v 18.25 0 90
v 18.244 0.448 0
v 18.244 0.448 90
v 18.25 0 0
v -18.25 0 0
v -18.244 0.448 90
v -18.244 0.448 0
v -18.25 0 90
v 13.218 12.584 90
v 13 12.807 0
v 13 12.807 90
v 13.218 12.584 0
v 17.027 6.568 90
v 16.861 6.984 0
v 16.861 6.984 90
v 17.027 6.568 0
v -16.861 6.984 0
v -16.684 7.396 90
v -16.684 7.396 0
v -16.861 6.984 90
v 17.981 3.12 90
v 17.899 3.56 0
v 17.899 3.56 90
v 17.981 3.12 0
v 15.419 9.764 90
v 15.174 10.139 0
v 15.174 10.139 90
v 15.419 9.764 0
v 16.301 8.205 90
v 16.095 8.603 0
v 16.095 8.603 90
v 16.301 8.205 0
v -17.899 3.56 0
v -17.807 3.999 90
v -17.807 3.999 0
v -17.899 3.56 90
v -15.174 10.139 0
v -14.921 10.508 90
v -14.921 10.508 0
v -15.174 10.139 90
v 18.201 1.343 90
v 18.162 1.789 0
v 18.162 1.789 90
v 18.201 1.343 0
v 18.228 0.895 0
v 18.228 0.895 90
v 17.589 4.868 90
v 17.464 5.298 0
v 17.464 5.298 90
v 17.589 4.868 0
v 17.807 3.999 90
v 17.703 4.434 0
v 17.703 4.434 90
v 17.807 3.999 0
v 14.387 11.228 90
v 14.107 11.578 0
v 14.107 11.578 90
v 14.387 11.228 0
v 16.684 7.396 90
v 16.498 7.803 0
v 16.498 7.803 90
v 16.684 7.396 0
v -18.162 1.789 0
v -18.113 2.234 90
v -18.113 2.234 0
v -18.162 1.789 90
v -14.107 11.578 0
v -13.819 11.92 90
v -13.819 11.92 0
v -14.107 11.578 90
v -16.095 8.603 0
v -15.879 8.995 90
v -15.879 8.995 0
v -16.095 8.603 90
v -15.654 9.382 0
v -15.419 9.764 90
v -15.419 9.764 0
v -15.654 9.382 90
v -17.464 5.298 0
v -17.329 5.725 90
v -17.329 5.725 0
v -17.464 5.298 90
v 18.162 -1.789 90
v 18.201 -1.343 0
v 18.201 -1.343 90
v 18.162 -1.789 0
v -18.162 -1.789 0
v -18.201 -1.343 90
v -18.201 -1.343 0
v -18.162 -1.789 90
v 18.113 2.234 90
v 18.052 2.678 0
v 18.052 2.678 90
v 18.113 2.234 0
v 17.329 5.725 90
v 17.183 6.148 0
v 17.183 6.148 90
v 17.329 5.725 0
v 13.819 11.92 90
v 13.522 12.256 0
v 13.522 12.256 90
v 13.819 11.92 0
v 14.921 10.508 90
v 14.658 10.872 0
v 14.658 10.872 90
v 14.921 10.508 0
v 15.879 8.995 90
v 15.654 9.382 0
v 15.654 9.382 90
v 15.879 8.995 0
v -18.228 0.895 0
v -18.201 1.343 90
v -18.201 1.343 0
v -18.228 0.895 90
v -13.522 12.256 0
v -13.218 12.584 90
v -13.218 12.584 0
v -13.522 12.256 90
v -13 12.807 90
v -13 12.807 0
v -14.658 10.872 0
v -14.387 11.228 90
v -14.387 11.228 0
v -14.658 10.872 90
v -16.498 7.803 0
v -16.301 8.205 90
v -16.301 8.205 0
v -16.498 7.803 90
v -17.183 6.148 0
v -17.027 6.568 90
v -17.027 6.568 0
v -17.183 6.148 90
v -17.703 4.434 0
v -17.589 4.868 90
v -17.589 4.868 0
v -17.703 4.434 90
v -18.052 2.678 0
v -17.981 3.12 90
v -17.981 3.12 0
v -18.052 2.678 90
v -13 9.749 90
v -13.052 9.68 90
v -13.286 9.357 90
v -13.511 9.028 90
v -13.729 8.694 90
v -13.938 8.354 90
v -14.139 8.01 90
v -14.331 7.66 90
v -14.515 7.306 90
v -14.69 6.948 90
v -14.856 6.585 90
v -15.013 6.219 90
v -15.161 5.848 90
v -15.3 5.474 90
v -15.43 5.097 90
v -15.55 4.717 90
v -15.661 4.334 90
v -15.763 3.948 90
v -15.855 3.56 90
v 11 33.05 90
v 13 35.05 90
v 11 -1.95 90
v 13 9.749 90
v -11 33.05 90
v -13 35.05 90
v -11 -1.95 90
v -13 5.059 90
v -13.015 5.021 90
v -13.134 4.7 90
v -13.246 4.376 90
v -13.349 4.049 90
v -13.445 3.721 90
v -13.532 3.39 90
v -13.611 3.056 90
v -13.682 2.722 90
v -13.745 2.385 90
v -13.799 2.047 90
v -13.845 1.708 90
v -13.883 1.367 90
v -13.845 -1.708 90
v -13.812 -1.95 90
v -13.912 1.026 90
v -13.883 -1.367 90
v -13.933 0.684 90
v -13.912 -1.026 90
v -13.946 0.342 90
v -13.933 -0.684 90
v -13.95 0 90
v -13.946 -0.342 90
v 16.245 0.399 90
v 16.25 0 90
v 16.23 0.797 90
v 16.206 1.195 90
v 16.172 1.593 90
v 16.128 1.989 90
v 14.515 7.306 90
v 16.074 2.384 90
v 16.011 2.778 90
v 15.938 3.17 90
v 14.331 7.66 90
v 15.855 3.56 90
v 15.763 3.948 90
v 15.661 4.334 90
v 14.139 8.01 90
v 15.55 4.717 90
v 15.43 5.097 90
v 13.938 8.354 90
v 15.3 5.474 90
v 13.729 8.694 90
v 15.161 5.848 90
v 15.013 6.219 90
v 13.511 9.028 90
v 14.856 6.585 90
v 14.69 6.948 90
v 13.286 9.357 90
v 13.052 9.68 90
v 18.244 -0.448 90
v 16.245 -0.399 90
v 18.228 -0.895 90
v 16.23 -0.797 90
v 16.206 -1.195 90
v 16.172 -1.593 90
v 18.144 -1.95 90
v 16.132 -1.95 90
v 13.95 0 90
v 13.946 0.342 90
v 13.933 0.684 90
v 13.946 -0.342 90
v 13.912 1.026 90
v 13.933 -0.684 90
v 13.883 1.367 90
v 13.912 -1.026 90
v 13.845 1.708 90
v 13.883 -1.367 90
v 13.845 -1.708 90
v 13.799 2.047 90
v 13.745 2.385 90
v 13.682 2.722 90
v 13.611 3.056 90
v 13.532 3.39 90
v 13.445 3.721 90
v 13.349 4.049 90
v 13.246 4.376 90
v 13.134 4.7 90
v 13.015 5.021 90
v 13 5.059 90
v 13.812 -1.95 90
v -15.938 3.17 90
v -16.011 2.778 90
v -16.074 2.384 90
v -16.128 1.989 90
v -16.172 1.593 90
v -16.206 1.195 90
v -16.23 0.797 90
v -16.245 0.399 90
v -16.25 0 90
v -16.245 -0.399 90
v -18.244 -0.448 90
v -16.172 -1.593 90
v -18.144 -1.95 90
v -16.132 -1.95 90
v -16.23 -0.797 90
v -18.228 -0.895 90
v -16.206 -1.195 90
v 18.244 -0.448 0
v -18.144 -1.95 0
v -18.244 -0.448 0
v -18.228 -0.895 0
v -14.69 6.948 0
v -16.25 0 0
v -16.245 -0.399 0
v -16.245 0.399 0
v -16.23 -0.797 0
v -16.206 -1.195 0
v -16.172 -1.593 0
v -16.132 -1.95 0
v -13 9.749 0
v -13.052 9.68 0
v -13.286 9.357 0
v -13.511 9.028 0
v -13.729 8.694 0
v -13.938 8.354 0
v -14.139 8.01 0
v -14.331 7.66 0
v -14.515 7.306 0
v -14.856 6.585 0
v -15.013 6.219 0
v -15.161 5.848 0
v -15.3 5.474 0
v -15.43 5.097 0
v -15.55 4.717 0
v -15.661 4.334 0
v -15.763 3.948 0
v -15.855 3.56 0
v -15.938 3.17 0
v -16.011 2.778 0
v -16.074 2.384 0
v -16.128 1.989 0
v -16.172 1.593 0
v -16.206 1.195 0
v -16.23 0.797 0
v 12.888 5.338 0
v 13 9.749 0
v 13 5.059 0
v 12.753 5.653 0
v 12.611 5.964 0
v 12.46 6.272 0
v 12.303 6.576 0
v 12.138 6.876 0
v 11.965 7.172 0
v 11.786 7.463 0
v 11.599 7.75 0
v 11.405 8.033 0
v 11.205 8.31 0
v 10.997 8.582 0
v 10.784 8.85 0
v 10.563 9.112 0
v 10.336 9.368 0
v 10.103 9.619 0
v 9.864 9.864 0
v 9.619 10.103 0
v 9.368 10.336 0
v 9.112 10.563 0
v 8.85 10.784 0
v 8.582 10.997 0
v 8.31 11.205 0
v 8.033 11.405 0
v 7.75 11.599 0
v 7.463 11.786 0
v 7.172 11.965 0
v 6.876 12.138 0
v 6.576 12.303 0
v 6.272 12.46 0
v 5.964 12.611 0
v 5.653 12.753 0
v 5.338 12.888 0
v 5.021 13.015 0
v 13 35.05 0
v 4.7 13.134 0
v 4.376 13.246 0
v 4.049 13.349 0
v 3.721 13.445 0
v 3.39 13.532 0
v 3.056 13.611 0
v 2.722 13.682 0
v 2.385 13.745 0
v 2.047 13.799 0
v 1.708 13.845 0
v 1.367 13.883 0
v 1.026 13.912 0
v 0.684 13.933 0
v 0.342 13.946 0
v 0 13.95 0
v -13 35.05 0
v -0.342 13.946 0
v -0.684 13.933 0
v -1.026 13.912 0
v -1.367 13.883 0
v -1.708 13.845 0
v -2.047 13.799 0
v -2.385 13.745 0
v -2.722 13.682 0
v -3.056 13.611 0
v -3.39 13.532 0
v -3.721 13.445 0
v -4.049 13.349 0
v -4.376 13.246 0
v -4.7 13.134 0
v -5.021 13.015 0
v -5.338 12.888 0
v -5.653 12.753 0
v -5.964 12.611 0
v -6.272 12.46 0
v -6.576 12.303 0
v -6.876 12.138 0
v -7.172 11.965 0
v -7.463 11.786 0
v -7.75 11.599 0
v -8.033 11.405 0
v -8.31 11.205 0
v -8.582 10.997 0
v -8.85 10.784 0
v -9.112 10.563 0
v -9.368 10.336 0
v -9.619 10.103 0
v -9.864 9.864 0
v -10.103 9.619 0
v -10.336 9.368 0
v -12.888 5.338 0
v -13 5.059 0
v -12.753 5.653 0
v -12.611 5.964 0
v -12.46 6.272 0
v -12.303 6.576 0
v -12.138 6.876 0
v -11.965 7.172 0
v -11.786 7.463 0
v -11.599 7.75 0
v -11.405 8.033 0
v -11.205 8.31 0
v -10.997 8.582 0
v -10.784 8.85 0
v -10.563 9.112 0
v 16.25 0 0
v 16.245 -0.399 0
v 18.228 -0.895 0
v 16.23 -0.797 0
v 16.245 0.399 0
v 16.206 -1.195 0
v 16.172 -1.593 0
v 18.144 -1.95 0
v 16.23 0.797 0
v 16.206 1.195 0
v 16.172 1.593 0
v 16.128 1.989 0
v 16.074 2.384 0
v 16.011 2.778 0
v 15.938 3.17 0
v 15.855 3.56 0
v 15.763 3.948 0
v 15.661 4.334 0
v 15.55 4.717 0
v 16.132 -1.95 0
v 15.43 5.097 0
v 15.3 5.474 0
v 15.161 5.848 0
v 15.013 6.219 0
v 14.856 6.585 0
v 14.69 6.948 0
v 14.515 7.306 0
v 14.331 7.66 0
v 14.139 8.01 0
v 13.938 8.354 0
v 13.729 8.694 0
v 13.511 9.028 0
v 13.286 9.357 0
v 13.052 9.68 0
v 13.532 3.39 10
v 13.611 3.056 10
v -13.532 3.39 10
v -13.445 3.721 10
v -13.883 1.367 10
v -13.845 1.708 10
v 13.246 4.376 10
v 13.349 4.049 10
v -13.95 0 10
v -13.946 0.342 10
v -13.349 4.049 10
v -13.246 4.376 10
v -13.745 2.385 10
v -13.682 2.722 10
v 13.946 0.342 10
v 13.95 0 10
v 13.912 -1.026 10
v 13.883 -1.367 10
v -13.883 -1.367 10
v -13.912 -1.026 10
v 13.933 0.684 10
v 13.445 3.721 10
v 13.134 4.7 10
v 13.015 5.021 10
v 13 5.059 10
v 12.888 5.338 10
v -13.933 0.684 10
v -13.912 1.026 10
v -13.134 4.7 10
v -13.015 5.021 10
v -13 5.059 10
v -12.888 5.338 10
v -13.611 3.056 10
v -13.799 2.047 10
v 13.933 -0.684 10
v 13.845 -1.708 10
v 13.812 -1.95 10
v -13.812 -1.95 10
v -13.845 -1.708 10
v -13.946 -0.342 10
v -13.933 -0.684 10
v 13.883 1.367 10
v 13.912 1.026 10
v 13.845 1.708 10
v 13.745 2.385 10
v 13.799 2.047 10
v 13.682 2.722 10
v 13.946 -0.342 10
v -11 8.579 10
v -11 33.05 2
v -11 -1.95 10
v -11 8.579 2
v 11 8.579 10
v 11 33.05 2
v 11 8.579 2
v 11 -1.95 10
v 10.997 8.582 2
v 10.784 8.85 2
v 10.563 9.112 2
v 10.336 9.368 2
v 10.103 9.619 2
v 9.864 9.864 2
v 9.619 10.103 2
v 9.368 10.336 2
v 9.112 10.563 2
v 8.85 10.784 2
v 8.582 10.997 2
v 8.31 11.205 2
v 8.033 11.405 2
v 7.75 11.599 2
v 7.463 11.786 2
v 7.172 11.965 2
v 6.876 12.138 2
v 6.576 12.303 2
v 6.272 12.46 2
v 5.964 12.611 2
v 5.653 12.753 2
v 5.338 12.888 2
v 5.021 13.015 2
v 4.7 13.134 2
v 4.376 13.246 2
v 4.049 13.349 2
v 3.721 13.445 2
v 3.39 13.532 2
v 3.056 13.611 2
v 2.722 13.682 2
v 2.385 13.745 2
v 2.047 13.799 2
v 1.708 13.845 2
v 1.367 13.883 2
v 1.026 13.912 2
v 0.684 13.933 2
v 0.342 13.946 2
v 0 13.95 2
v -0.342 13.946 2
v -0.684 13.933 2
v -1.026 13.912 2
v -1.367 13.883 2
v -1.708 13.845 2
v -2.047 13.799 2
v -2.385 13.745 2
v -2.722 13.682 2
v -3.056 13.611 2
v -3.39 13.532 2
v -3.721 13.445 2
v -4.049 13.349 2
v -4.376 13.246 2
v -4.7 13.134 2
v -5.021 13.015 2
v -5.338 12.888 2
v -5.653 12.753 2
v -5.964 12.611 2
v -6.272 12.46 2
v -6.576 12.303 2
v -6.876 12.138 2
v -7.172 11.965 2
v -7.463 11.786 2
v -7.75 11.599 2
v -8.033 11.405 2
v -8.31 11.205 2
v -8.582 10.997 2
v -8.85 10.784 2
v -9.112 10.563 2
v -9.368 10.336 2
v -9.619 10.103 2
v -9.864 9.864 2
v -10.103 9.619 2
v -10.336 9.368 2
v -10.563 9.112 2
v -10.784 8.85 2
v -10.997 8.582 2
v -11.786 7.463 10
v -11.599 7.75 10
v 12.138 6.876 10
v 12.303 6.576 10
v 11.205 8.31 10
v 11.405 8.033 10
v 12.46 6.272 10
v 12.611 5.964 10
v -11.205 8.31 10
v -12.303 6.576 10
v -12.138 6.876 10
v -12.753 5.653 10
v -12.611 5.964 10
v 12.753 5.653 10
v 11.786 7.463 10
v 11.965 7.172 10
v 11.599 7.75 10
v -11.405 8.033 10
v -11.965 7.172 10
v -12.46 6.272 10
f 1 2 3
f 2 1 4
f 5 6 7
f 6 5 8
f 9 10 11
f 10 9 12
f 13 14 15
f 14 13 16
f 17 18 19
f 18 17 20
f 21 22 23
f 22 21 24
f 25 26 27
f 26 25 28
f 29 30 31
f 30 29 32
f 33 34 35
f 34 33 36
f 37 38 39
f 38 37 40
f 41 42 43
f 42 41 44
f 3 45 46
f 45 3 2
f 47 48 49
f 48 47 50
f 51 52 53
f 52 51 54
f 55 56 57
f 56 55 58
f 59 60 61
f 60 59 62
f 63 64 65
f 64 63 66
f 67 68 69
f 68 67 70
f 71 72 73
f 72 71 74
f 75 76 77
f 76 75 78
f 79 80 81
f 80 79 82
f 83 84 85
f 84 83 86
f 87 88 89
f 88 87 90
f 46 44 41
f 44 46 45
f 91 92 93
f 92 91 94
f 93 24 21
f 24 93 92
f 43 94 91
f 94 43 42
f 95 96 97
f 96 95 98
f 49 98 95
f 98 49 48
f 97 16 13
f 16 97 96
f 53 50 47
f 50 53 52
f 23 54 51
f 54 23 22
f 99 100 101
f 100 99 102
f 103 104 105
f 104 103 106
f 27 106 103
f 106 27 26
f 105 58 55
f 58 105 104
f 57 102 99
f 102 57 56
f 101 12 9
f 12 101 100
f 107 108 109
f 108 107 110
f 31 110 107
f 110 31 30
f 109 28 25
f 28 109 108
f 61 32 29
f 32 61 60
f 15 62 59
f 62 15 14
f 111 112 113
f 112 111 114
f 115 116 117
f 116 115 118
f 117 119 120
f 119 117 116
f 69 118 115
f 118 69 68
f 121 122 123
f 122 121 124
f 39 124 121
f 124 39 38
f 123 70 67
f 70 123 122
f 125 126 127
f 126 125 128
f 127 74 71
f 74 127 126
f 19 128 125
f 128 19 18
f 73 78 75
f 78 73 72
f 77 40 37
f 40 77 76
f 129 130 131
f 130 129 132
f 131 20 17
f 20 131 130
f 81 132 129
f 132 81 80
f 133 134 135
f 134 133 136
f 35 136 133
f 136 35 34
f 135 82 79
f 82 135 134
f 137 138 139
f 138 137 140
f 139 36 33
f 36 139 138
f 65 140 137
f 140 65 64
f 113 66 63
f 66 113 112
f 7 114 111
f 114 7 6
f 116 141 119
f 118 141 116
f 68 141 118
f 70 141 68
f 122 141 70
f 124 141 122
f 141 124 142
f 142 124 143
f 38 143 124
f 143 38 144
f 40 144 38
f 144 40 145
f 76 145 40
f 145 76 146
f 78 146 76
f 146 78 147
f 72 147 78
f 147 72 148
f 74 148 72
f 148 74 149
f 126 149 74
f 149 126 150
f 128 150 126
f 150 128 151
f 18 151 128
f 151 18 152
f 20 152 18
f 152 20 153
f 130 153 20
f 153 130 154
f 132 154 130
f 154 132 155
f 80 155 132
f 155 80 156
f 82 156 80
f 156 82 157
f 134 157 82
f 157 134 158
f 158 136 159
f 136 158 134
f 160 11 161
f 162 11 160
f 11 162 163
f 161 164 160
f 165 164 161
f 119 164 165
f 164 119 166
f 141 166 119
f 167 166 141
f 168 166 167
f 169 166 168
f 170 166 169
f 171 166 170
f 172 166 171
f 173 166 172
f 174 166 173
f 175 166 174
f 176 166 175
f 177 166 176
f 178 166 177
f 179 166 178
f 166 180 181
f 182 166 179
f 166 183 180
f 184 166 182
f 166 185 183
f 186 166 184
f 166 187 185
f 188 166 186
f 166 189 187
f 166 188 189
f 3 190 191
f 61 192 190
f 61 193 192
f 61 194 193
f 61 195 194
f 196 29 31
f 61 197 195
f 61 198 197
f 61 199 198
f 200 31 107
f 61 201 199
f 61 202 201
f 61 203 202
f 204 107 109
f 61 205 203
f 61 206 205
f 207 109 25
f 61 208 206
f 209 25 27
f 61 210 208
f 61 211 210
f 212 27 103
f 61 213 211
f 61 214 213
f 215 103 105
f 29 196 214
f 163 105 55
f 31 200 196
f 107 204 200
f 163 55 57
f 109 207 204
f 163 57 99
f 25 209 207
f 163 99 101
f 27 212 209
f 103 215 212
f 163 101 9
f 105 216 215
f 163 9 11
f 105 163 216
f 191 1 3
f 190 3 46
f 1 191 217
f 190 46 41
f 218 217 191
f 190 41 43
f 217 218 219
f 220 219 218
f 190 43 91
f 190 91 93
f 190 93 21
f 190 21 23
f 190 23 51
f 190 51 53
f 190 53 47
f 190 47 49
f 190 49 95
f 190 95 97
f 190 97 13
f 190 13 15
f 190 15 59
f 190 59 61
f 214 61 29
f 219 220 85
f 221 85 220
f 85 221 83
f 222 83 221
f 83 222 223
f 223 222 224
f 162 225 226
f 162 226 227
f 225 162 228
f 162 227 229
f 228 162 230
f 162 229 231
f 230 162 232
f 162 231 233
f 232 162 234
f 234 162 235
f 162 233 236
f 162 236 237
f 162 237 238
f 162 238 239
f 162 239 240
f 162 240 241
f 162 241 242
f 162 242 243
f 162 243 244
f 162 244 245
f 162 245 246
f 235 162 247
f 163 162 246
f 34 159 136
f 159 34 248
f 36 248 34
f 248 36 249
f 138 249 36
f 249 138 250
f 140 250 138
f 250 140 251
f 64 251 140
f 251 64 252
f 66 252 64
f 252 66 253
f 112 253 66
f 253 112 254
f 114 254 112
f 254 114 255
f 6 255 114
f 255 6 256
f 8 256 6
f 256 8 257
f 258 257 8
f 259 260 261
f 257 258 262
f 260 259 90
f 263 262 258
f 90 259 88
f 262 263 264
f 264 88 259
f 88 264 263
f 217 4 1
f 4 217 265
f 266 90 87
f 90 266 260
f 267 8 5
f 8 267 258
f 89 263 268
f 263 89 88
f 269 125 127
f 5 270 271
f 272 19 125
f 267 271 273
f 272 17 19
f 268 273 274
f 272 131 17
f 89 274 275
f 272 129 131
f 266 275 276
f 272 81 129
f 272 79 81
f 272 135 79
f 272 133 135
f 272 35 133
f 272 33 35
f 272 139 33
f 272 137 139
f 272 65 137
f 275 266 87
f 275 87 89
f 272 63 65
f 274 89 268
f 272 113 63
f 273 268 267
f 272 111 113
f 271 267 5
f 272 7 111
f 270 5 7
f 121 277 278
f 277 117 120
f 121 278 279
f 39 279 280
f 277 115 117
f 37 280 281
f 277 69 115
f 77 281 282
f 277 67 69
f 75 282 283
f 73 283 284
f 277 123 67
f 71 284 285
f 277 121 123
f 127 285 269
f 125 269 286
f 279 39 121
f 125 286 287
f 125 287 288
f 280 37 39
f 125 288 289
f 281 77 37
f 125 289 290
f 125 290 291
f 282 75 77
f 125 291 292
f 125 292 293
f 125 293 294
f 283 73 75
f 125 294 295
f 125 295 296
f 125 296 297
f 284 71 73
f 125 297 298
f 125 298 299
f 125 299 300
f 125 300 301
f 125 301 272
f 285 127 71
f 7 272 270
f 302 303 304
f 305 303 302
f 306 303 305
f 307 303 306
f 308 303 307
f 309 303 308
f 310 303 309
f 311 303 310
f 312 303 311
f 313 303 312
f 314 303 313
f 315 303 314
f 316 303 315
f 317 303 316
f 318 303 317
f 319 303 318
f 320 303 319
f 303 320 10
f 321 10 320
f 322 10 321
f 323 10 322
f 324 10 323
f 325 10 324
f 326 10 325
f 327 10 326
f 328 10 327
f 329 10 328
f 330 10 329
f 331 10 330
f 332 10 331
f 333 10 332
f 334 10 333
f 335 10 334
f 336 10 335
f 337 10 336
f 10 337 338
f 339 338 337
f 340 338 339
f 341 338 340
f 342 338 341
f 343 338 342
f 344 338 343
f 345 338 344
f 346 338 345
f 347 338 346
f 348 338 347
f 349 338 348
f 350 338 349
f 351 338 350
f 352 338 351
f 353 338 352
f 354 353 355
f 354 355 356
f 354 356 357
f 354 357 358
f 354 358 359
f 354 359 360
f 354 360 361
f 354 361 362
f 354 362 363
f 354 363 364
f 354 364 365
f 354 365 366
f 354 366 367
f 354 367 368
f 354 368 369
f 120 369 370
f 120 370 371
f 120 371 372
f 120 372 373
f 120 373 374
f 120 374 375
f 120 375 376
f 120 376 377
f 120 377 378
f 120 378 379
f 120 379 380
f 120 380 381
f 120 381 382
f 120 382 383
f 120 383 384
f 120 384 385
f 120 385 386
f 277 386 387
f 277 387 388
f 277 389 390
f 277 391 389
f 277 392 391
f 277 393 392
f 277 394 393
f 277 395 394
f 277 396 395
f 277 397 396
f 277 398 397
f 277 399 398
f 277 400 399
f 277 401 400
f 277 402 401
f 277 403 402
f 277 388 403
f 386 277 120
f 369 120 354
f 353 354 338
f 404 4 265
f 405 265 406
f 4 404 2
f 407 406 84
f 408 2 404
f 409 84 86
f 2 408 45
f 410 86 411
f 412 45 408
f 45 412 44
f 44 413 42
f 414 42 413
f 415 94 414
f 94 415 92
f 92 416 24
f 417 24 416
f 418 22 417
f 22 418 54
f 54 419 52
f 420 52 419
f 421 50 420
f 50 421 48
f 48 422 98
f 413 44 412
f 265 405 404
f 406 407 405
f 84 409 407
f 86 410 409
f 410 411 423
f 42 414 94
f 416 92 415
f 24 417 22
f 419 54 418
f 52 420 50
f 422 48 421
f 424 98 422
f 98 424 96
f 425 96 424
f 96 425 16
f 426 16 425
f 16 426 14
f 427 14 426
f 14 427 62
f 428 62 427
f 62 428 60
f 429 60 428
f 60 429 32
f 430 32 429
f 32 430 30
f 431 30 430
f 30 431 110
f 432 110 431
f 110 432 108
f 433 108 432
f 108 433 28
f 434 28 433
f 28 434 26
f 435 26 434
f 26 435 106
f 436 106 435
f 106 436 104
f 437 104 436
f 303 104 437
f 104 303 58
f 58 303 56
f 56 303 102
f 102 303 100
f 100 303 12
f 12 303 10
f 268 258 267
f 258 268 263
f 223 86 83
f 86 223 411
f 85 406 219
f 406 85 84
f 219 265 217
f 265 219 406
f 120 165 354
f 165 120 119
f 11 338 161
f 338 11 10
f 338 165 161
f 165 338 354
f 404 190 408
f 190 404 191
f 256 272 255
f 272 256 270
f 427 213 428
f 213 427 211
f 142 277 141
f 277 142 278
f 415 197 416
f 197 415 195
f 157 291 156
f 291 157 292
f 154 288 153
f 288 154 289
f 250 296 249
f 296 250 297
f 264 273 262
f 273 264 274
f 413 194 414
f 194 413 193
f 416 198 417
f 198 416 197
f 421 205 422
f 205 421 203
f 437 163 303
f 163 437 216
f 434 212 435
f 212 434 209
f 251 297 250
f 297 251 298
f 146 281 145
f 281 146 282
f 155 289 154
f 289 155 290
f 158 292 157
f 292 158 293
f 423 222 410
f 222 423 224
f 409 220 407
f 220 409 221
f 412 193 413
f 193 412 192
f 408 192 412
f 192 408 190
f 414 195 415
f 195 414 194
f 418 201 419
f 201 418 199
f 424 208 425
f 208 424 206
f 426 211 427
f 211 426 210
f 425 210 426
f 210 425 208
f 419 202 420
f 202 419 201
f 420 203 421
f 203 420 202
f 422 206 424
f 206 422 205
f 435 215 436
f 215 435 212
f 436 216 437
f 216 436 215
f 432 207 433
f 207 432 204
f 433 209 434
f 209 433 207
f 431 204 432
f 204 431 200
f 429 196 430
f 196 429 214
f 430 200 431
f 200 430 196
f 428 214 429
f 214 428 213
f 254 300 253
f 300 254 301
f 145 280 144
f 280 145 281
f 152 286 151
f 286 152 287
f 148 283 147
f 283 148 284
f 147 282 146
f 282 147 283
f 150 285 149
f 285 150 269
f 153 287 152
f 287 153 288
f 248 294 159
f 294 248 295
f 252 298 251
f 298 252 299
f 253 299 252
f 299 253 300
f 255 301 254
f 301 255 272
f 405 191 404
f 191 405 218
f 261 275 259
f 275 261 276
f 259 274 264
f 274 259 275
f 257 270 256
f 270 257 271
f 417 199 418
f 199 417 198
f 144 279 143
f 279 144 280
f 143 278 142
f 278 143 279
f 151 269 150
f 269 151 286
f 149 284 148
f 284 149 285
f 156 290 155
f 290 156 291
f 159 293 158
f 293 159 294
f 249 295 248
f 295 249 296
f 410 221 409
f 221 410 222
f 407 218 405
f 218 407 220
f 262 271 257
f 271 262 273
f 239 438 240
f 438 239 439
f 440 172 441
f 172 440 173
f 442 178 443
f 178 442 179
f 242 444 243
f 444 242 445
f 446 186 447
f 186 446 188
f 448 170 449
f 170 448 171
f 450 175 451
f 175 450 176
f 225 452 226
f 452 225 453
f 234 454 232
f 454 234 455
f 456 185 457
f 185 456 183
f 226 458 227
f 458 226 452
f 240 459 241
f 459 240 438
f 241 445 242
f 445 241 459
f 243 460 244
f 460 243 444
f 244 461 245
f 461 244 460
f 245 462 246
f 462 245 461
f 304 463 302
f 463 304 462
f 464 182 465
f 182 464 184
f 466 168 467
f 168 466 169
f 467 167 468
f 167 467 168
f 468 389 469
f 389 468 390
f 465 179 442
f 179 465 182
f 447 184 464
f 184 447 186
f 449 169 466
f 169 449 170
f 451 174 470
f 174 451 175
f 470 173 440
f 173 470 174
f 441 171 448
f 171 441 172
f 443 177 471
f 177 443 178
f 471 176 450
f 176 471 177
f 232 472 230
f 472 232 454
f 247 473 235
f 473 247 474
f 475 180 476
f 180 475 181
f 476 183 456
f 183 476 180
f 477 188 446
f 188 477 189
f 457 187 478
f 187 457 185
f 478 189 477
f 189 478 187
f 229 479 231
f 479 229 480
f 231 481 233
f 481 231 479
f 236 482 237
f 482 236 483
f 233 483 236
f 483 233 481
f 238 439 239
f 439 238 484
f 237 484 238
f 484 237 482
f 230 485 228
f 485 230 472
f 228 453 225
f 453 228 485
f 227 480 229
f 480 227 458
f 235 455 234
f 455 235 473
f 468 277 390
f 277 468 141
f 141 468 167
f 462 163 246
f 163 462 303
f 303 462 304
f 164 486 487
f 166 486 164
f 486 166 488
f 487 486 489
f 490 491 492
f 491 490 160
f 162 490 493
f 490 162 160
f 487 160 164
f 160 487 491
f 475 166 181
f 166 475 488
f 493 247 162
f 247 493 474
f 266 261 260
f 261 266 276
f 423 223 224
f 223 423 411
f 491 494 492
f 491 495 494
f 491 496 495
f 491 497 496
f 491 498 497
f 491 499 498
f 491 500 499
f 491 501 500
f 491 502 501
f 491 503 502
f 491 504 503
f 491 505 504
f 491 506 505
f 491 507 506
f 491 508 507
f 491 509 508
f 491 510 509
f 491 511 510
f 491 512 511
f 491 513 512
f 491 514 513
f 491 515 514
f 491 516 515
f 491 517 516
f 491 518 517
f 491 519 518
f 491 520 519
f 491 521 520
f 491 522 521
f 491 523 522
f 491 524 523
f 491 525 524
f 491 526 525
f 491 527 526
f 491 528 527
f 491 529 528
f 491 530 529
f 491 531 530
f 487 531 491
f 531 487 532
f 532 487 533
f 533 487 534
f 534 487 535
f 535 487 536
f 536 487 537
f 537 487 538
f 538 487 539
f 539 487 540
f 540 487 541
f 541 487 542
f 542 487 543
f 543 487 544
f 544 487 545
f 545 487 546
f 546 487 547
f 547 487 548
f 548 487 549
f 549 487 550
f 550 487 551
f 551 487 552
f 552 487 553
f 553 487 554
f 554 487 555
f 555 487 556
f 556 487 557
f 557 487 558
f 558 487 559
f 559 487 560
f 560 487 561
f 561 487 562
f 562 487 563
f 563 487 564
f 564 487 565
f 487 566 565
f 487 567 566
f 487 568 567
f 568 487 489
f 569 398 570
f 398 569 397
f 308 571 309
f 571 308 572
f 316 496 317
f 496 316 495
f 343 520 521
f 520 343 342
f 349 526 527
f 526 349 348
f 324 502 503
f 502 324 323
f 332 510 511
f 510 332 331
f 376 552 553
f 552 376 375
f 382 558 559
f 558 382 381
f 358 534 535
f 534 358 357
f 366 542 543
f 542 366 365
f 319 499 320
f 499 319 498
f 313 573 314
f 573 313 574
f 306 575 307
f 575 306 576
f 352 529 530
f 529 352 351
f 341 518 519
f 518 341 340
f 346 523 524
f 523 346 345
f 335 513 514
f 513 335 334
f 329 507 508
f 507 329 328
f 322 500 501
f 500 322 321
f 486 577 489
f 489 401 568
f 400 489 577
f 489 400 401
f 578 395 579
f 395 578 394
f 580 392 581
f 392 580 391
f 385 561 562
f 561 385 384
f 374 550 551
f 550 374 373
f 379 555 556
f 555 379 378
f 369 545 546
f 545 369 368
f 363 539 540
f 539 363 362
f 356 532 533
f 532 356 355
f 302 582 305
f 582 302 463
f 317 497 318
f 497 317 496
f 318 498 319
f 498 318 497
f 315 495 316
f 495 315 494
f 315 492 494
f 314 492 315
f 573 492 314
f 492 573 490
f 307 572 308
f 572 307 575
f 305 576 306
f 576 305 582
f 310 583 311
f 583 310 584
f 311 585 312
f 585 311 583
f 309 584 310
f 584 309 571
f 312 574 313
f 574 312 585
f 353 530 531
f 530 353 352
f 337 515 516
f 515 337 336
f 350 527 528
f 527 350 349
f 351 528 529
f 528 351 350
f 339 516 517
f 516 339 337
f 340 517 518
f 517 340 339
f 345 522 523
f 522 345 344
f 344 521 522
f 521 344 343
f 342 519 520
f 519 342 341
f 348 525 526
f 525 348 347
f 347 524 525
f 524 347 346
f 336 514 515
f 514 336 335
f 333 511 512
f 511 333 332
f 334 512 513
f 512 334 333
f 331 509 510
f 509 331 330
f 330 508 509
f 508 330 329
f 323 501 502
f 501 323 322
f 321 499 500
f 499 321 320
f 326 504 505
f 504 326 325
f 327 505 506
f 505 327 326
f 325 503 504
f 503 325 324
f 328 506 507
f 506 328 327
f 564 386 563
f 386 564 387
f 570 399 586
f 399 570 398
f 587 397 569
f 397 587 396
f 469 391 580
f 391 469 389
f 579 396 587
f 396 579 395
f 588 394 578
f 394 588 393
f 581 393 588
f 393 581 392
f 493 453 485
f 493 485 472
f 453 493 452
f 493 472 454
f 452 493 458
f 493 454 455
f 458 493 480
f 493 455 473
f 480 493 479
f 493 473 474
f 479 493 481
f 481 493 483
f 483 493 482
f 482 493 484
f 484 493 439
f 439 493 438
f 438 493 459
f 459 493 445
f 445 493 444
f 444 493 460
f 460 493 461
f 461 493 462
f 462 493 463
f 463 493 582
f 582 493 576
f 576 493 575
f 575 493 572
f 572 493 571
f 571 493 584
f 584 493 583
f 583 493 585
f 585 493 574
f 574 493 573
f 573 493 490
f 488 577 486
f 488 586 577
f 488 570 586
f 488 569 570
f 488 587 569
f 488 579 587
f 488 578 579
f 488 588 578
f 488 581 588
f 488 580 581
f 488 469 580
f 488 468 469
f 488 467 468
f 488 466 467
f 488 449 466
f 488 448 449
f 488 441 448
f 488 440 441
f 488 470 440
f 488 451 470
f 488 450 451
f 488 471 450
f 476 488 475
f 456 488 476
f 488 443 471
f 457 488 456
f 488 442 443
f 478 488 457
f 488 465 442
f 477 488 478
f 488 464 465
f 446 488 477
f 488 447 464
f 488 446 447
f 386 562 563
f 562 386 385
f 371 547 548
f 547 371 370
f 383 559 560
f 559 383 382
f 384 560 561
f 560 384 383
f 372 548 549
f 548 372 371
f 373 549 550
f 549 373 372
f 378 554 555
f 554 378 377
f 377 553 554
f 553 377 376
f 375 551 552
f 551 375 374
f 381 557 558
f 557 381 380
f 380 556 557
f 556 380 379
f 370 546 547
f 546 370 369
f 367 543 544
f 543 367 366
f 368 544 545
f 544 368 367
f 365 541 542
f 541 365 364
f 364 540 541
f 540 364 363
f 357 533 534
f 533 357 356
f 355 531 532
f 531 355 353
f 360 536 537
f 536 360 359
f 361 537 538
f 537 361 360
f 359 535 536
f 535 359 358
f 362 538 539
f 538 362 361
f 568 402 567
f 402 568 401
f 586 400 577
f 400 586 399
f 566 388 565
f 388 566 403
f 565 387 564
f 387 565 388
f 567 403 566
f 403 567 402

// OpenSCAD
difference() {
	union() {
		intersection() {
			difference() {
				difference() {
					union() {
						translate(v = [-13.0000000000, -1.9500000000, 0]) {
							cube(size = [26, 37, 90]);
						}
						difference() {
							cylinder($fn = 256, d = 36.5000000000, h = 90);
							translate(v = [0, 0, -50]) {
								cylinder($fn = 256, d = 0, h = 190);
							}
						}
					}
					difference() {
						difference() {
							cylinder($fn = 256, d = 32.5000000000, h = 90);
							translate(v = [0, 0, -50]) {
								cylinder($fn = 256, d = 27.9000000000, h = 190);
							}
						}
						translate(v = [-13.0000000000, -1.9500000000, 0]) {
							cube(size = [26, 37, 90]);
						}
					}
				}
				translate(v = [-11.0000000000, -1.9500000000, 0]) {
					cube(size = [22, 35, 90]);
				}
			}
			translate(v = [-100, -1.9500000000, 0]) {
				cube(size = [200, 200, 200]);
			}
		}
		translate(v = [-11.0000000000, -1.9500000000, 0]) {
			cube(size = [22, 35, 2]);
		}
	}
	difference() {
		cylinder($fn = 256, d = 27.9000000000, h = 10);
		translate(v = [0, 0, -50]) {
			cylinder($fn = 256, d = 0, h = 110);
		}
	}
}
